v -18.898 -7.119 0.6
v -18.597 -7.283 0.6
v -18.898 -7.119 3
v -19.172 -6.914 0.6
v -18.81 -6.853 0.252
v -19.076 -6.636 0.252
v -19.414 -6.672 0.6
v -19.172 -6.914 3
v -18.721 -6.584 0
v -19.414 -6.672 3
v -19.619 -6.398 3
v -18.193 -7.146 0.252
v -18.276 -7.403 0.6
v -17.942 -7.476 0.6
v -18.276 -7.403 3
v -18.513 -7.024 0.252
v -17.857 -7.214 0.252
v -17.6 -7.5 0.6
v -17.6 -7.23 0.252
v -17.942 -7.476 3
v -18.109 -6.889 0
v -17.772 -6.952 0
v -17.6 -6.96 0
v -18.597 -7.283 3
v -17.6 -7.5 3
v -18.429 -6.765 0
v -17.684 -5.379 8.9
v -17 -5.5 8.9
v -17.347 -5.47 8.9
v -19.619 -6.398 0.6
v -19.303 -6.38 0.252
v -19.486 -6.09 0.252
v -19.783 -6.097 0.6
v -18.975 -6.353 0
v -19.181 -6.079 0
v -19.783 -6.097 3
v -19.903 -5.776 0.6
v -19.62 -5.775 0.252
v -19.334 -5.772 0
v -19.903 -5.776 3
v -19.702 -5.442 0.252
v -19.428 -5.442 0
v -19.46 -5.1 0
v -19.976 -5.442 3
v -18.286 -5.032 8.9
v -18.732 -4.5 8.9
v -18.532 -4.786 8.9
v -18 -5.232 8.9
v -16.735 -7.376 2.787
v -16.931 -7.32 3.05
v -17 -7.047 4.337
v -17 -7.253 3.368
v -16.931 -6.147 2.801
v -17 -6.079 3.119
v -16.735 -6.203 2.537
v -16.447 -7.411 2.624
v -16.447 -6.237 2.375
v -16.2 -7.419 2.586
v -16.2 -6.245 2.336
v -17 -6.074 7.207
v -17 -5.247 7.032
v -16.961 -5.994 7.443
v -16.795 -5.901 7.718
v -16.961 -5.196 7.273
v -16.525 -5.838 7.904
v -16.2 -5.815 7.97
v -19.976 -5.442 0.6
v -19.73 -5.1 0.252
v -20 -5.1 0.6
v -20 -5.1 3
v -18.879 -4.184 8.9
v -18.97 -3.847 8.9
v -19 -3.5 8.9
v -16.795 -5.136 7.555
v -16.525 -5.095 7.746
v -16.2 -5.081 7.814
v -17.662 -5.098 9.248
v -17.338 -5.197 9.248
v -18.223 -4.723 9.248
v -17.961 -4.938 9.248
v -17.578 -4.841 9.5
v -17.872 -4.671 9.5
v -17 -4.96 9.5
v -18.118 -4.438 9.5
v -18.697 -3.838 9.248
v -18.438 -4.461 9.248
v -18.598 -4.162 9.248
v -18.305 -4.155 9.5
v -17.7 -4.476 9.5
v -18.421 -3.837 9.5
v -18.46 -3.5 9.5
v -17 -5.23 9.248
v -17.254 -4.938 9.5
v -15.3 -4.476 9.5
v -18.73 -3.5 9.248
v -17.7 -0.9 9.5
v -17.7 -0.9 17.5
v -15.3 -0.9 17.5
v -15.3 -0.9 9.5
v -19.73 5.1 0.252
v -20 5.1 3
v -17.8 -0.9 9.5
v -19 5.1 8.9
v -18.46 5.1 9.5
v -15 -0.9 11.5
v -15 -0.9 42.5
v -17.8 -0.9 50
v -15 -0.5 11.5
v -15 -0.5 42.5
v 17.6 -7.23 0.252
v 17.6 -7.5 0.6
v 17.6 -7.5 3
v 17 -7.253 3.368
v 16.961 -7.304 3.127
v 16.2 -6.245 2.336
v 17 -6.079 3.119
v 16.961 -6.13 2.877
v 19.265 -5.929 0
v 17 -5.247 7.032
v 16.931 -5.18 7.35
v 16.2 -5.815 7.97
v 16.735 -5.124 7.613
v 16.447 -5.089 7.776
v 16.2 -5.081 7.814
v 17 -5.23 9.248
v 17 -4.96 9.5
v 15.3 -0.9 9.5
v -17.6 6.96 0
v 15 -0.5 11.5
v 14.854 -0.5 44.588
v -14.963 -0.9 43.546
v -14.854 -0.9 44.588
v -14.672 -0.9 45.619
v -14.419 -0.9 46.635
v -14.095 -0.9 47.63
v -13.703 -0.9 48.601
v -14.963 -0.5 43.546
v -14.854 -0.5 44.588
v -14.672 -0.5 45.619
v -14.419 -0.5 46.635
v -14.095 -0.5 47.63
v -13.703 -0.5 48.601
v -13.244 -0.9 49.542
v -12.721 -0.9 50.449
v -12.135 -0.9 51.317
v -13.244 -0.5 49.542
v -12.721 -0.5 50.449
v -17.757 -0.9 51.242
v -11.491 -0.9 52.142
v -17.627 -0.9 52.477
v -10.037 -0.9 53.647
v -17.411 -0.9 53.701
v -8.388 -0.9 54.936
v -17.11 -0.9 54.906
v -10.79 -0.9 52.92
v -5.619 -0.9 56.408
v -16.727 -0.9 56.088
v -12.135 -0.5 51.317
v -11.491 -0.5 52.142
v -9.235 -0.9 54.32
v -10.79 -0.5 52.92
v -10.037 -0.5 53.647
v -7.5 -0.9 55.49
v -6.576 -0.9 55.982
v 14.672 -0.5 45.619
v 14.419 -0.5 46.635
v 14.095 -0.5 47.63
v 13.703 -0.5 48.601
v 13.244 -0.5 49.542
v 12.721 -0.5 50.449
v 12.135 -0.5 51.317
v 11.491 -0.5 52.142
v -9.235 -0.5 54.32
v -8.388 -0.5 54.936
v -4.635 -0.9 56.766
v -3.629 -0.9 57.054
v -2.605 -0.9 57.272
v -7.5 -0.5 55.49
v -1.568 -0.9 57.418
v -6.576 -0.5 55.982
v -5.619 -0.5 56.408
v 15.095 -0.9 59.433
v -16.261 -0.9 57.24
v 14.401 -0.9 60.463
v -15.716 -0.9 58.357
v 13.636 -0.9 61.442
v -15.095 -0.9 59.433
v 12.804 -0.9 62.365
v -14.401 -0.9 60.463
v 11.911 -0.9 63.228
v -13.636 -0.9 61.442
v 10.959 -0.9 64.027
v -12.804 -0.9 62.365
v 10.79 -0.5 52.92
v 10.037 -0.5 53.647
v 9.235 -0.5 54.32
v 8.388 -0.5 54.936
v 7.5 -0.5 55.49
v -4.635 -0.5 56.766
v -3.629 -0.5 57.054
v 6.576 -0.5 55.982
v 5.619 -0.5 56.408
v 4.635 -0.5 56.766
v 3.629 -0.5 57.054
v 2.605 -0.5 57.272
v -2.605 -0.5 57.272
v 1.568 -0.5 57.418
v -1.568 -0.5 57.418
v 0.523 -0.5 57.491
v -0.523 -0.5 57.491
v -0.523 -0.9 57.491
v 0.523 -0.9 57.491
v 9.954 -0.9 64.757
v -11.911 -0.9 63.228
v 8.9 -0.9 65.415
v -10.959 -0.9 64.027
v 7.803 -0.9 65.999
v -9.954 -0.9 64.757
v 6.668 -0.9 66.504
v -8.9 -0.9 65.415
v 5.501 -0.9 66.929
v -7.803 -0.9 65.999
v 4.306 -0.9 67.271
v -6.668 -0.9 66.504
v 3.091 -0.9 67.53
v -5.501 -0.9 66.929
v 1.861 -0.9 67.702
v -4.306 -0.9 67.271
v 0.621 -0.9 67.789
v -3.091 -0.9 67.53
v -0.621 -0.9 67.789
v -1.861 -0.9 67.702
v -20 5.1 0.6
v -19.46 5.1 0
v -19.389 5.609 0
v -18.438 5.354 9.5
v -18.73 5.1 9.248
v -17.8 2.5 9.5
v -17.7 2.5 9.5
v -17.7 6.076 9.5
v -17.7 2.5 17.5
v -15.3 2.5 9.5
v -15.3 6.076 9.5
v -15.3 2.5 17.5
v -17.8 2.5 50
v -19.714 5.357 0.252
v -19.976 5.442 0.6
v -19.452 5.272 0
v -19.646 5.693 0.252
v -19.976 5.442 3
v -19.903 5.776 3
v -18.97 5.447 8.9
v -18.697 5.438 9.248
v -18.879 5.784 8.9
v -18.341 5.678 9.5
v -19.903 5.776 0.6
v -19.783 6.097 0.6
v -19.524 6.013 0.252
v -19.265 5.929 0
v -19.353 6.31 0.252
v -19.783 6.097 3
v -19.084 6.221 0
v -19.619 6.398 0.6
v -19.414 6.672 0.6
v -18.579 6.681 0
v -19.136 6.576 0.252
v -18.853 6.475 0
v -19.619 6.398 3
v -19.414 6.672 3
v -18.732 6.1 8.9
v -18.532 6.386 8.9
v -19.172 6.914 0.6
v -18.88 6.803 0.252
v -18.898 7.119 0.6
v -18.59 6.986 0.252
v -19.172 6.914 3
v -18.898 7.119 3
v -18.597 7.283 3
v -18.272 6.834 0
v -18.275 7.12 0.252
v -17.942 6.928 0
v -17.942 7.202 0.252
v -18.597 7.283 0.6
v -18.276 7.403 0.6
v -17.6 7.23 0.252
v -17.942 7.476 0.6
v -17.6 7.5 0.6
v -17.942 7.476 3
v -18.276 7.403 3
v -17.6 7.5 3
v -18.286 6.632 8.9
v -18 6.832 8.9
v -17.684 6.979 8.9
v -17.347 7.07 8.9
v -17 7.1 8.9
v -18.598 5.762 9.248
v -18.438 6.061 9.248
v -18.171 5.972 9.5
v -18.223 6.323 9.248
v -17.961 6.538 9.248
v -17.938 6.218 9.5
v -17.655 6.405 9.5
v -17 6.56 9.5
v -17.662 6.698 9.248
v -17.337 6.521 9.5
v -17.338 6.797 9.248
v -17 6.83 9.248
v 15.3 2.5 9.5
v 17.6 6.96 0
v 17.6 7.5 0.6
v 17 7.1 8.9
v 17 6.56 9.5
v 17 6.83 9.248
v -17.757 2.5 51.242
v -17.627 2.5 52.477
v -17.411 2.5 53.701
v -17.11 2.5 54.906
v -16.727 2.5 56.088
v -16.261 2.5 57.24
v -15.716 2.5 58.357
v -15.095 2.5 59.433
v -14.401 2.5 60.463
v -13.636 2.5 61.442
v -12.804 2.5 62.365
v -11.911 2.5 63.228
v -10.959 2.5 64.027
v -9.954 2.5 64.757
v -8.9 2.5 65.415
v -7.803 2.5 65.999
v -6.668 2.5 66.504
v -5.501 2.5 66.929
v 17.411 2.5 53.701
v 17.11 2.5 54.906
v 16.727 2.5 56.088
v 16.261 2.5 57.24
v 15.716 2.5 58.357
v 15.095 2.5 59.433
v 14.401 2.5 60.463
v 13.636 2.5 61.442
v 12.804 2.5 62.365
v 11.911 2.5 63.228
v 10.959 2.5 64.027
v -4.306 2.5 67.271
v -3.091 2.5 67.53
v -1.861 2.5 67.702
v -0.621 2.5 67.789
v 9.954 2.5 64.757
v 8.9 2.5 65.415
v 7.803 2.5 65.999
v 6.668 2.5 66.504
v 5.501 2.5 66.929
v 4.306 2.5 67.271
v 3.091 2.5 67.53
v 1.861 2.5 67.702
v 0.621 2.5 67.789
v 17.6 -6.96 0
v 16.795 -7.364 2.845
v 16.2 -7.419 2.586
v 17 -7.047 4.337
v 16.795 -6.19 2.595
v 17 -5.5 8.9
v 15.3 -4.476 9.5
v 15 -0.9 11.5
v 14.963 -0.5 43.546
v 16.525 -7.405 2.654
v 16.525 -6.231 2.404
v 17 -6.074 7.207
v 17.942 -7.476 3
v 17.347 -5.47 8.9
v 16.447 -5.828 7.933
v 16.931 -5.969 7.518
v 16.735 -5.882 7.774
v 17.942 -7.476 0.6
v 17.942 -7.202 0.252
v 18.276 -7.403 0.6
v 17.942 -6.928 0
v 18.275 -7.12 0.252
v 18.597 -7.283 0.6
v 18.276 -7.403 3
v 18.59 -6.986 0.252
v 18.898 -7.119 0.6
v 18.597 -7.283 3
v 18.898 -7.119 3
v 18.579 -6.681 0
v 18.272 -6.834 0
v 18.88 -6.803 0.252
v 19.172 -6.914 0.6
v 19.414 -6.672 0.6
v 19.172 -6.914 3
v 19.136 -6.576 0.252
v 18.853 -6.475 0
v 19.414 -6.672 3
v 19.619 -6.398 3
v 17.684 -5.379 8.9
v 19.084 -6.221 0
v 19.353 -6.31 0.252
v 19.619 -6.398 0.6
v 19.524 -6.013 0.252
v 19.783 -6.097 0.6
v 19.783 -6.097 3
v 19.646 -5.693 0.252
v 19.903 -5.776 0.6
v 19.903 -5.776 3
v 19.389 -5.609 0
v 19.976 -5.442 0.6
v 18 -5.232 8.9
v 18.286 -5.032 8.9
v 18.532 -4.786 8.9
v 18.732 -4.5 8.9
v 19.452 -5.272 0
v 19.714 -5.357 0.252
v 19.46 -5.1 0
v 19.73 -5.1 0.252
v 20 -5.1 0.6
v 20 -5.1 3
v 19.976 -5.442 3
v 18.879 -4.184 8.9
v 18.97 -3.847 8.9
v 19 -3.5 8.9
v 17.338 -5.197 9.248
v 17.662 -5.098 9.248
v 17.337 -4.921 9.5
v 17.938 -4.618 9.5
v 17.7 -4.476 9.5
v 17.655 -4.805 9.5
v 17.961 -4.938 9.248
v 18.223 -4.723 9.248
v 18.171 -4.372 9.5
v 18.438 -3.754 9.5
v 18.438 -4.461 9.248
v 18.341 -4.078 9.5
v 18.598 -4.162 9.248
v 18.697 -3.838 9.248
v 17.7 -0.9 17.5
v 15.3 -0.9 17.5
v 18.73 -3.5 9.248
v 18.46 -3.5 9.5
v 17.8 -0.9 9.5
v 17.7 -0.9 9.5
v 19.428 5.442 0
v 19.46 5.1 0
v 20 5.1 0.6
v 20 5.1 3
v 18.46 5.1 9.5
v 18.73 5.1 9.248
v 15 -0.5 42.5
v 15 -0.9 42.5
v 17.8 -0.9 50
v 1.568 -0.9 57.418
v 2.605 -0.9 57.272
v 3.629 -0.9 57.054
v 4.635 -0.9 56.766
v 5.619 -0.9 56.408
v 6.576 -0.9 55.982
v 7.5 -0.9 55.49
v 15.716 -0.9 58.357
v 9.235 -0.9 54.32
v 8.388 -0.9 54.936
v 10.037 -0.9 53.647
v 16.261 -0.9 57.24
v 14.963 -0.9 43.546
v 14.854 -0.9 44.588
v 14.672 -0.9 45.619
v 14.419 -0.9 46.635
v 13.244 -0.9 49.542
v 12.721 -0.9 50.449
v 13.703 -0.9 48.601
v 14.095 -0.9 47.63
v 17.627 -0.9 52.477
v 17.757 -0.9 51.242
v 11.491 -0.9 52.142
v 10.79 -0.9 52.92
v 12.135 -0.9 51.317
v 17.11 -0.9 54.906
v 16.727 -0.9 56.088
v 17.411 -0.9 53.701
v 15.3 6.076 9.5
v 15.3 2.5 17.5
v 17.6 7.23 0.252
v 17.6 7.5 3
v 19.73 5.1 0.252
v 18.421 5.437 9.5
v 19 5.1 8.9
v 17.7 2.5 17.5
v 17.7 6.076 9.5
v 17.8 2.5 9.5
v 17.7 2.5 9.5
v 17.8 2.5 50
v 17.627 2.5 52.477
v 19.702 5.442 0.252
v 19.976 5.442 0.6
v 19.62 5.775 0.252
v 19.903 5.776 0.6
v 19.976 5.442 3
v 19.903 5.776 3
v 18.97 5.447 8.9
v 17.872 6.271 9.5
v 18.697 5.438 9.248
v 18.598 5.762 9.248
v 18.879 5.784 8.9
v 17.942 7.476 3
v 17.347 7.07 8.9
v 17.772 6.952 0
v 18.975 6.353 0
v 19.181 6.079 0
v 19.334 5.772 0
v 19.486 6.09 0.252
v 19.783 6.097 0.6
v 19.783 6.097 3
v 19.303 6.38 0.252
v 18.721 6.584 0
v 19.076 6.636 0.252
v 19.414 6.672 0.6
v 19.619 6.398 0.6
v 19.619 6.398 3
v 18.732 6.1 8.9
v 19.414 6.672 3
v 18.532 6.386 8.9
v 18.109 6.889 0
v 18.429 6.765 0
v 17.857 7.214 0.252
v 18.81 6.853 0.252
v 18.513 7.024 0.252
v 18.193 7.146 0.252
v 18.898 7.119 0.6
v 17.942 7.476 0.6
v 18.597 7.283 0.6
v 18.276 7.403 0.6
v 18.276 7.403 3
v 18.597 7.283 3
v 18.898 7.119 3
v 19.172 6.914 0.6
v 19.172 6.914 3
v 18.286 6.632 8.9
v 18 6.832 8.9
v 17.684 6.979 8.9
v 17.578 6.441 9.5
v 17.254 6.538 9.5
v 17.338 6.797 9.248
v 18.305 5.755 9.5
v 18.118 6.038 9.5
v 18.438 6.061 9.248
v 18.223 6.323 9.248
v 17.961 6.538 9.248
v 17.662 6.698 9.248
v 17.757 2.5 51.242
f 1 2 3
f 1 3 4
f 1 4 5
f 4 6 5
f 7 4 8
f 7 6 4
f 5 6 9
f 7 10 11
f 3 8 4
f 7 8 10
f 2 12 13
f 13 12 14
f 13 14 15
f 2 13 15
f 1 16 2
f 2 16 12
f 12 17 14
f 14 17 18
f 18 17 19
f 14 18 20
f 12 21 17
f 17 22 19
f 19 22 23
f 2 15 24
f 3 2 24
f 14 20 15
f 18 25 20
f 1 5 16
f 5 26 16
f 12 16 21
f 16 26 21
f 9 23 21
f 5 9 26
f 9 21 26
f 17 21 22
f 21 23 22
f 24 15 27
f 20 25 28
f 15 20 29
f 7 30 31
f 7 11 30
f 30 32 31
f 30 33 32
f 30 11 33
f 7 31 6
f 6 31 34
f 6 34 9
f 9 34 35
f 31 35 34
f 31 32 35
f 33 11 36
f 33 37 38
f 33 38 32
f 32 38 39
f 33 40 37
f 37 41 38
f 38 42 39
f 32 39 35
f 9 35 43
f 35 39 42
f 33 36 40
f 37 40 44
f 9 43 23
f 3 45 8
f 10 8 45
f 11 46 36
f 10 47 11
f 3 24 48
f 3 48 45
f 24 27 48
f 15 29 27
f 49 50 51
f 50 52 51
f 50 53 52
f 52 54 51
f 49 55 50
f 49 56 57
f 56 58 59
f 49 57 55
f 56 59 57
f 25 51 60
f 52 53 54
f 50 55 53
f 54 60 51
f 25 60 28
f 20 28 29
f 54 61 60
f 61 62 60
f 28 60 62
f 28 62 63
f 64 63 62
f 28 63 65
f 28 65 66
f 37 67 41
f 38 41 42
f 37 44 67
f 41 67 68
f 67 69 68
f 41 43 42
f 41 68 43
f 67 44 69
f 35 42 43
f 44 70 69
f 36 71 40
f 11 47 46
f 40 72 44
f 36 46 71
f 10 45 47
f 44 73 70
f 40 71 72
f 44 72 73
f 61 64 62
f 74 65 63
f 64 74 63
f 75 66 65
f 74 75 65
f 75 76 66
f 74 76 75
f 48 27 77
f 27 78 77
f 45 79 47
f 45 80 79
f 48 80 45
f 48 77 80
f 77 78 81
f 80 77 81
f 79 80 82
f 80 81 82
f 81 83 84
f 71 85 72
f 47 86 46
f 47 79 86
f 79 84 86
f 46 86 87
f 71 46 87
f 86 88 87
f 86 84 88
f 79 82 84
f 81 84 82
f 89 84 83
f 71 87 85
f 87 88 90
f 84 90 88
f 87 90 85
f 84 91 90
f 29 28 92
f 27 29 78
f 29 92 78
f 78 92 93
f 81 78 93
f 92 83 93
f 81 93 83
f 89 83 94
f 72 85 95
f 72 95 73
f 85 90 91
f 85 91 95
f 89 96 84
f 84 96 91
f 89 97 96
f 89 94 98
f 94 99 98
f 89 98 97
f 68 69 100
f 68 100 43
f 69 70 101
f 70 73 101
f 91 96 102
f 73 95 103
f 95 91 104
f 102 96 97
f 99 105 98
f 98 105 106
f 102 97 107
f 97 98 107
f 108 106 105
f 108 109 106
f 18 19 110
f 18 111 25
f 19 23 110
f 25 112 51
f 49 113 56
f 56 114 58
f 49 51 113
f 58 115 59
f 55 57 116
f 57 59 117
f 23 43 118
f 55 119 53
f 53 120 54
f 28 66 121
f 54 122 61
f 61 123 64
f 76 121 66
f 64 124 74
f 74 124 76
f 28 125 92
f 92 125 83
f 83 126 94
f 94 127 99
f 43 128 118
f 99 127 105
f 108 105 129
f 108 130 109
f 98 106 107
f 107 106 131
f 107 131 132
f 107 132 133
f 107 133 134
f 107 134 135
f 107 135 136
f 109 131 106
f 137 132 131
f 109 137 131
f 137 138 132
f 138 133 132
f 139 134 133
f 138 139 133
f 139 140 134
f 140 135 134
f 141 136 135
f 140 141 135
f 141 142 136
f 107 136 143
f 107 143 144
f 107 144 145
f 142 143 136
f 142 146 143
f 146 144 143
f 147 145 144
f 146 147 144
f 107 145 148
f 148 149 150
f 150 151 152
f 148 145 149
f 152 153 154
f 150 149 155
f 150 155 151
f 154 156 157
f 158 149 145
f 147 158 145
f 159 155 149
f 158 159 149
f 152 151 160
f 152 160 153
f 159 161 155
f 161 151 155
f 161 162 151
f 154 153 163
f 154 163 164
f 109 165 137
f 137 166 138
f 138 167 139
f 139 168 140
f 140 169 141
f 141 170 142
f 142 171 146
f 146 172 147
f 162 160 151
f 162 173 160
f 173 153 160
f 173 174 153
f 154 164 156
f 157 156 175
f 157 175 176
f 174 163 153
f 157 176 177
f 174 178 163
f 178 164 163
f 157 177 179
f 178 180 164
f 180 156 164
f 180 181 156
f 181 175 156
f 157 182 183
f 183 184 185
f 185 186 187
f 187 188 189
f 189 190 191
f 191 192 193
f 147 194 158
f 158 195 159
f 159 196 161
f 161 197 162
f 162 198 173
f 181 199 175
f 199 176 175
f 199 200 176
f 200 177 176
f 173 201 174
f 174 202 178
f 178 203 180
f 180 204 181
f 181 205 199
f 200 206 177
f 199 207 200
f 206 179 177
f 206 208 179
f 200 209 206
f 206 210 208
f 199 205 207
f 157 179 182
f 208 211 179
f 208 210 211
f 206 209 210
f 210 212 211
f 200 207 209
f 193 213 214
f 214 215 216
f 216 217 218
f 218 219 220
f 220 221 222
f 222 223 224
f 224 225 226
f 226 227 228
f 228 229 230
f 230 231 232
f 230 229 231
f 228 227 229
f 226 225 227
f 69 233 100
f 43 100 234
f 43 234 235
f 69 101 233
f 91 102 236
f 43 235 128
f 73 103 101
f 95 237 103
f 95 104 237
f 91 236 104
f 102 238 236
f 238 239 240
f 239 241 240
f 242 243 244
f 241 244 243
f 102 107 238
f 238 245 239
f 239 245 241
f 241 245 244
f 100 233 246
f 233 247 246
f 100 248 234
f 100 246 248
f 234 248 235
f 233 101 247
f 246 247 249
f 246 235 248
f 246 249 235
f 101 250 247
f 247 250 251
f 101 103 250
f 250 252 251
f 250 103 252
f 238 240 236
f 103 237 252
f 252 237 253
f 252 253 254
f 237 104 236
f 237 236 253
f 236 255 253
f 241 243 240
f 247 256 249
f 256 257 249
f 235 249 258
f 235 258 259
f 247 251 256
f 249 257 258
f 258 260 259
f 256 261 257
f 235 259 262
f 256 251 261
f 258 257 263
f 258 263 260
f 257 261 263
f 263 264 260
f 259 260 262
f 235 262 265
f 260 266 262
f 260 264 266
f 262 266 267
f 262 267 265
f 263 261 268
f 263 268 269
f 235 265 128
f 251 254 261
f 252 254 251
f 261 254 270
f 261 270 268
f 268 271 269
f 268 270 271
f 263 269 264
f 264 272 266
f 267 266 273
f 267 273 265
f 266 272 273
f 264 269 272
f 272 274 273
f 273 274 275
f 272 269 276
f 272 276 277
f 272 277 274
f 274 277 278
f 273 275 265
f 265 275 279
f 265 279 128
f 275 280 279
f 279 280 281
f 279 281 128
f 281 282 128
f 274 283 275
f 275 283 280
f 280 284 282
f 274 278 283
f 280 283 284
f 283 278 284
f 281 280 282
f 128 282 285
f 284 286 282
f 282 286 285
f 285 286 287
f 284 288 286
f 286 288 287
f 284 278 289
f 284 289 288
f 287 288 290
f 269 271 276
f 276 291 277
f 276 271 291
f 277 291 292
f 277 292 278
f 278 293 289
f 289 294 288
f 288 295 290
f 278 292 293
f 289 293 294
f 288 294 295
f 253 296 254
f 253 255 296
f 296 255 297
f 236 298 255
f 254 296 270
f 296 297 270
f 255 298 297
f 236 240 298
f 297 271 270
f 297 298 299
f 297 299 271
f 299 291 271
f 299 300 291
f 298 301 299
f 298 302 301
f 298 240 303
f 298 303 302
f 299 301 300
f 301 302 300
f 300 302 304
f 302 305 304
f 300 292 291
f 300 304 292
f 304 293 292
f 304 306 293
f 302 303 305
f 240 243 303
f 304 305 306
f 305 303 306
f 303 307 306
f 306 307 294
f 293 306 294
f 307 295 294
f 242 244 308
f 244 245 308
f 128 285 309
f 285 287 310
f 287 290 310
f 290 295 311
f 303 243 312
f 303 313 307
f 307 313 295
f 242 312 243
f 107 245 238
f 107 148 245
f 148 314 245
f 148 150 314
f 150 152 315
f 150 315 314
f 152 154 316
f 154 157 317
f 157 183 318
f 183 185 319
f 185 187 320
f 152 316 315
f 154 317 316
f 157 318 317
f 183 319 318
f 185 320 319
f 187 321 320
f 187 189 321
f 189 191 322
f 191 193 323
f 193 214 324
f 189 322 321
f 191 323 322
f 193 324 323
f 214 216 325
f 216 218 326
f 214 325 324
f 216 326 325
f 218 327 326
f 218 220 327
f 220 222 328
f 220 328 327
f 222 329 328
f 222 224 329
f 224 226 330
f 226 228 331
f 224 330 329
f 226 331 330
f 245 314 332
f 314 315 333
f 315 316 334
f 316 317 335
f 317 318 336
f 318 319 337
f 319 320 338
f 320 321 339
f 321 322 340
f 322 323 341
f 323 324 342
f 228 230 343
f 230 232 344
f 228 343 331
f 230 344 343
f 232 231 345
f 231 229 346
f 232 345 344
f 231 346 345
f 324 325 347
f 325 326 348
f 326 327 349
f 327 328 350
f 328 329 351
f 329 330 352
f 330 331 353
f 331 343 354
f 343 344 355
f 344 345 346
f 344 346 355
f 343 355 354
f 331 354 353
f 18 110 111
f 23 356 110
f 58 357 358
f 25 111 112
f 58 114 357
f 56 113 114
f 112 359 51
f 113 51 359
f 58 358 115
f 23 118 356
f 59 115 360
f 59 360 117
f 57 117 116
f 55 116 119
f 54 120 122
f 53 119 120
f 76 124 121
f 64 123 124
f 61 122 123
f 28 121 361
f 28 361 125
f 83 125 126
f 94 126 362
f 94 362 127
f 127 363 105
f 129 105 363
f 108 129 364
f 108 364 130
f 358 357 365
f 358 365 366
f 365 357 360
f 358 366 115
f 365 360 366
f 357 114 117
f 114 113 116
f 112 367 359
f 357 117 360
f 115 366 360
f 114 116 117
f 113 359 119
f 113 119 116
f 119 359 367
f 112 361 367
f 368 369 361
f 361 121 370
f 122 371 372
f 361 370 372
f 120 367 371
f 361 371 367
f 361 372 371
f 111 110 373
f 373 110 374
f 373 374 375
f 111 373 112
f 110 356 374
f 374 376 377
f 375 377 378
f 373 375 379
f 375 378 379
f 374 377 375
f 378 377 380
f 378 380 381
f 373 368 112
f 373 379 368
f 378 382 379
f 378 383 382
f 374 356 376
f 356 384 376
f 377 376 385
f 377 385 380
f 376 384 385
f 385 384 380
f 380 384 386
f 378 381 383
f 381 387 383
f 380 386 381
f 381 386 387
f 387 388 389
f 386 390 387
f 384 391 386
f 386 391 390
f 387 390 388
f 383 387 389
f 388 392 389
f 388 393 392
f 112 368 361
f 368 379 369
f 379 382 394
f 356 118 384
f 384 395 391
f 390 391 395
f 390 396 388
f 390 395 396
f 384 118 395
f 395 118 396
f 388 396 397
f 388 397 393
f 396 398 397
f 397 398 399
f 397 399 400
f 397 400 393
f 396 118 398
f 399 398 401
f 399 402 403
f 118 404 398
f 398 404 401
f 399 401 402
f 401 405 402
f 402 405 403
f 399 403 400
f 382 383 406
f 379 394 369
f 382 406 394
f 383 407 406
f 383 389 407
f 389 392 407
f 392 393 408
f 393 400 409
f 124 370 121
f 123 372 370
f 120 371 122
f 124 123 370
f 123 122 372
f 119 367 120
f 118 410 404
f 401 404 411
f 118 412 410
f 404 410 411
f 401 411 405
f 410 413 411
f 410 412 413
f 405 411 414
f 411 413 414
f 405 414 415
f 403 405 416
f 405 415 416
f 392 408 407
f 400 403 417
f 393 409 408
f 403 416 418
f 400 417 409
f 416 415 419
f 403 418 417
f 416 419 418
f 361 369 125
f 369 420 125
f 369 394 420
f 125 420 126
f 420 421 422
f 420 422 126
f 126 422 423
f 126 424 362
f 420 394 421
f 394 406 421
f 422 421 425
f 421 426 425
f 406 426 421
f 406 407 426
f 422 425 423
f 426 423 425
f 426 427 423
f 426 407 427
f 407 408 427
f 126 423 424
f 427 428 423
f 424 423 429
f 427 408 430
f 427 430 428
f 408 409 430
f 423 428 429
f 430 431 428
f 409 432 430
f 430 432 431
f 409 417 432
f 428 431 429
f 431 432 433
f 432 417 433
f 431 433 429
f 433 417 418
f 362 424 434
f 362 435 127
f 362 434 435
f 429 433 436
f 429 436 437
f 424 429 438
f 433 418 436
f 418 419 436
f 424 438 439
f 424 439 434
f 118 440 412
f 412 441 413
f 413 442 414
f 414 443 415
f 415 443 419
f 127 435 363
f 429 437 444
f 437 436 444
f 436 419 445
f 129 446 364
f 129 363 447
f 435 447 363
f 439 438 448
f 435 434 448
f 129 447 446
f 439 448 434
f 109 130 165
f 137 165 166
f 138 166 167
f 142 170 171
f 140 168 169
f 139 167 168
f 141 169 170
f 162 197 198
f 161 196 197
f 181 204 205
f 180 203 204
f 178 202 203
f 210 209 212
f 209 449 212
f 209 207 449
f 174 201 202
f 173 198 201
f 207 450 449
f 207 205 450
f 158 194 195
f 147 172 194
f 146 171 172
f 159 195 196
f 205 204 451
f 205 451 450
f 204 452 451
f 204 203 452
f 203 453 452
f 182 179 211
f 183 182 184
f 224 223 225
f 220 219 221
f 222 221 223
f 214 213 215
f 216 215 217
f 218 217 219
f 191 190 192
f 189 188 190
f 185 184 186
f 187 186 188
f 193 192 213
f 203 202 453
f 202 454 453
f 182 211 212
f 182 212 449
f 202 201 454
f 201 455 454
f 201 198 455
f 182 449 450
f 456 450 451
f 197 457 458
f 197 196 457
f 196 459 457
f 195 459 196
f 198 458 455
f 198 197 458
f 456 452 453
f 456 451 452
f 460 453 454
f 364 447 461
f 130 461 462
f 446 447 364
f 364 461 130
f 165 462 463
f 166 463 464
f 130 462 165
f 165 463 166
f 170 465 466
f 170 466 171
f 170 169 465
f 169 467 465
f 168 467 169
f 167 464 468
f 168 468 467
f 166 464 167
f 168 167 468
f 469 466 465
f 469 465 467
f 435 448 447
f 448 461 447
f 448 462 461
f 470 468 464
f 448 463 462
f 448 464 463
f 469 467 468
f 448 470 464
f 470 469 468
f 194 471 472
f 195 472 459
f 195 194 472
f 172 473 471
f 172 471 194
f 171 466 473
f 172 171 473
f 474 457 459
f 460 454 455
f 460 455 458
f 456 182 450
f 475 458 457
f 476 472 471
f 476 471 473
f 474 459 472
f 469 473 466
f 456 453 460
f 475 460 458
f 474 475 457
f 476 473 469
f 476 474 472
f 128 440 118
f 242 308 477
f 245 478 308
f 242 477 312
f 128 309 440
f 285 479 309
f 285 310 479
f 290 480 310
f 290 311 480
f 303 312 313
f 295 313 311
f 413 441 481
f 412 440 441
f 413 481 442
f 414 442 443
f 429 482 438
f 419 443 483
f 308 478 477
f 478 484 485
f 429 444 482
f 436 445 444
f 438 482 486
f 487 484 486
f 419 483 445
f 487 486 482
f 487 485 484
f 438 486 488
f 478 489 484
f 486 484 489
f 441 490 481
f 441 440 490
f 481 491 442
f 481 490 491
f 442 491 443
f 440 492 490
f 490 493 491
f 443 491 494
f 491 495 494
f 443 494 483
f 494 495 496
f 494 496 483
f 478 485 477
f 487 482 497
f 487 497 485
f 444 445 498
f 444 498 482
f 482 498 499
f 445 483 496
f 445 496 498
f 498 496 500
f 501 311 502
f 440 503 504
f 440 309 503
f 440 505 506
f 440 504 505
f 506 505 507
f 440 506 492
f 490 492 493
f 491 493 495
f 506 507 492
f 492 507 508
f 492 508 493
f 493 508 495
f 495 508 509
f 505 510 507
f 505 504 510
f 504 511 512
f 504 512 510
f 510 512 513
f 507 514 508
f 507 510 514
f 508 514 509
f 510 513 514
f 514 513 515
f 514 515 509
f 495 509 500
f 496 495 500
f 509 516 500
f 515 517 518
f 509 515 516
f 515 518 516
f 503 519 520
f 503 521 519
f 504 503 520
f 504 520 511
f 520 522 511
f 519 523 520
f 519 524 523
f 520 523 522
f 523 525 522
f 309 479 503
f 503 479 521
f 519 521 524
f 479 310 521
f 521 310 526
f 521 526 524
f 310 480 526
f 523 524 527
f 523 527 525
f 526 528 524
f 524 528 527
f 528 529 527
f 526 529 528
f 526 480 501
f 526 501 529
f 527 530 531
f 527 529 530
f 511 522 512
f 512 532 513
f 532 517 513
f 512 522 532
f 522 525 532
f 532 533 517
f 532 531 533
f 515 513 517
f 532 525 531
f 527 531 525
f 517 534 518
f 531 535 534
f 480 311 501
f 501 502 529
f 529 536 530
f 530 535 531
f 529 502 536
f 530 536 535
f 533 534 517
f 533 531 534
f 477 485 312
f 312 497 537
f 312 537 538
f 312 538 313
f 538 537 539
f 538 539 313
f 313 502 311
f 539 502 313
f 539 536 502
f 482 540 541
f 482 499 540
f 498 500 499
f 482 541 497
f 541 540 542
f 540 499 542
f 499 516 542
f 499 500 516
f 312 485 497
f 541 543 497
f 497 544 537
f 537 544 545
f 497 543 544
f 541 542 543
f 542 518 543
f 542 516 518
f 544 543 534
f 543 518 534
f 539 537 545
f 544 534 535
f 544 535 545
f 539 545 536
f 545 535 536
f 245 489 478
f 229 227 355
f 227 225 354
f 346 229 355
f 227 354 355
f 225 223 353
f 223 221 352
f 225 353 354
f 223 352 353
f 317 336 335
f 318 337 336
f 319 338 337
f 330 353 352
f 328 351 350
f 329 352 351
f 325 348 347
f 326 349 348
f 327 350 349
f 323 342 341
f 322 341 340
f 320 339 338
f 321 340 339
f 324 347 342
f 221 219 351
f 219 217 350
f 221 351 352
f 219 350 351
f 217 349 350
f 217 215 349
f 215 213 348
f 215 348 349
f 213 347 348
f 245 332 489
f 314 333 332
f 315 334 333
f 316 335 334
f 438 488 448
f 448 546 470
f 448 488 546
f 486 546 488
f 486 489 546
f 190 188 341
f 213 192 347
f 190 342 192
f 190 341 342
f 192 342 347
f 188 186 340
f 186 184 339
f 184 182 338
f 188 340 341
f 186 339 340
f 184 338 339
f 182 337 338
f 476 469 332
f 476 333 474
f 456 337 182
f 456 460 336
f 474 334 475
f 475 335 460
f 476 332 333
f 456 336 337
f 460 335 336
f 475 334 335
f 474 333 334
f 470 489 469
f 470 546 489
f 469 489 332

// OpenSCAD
// Hauntology Tabletop Print Kit — Suspect Standee (Gothic Arch Tabletop Pawn)
// Colour: Ink (#0b0d10, matte black)
// Size: 40 W x 15 D mm base, 70 mm tall, 3.2 mm blade thickness
// Sticker details: Front portrait sticker pocket (30 x 46 mm arch) + plinth nameplate strip (34 x 7 mm)
// Print orientation: Flat on base (Z = 0), zero supports.

include <_common.scad>

standee_w      = 40.0;
standee_d      = 15.0;
standee_h      = 70.0;
blade_t        = 3.4;
plinth_h       = 9.5;

module gothic_arch_2d(w, h) {
  r_arch = w / 2;
  rect_h = max(1, h - r_arch);
  union() {
    translate([0, rect_h / 2])
      square([w, rect_h], center = true);
    translate([0, rect_h])
      hull() {
        circle(r = r_arch);
        translate([0, r_arch * 0.22]) circle(r = 1.6);
      }
  }
}

module standee_blank() {
  difference() {
    union() {
      // 1. Stepped Tabletop Plinth Base (40 x 15 x 9.5 mm) with angled front nameplate face
      hull() {
        chamfer_box(standee_w, standee_d, 3.2, r = 2.4, ch_bot = 0.6, ch_top = 0.2);
        translate([0, 0.8, 3.2])
          chamfer_box(standee_w - 2.0, standee_d - 2.4, plinth_h - 3.2, r = 2.0, ch_bot = 0.2, ch_top = 0.6);
      }

      // 2. Gothic-Arched Portrait Blade (z = 6.0..70.0, 3.4 mm thick)
      translate([0, 0.8, 6.0])
        rotate([90, 0, 0])
          linear_extrude(height = blade_t, center = true)
            gothic_arch_2d(35.6, standee_h - 8.2);

      // 3. Decorative side buttress fillets uniting plinth and blade
      for (sx = [-1, 1]) {
        hull() {
          translate([sx * 16.5, 0.8, plinth_h - 1.0])
            cube([2.4, standee_d - 4.0, 1.0], center = true);
          translate([sx * 16.5, 0.8, plinth_h + 7.5])
            cube([2.4, blade_t, 1.0], center = true);
        }
      }
    }

    // 4. Recessed 0.4 mm Portrait Sticker Pocket on Front of Blade (30 x 46 mm gothic arch)
    translate([0, 0.8 - blade_t / 2 + sticker_depth, 11.5])
      rotate([90, 0, 0])
        linear_extrude(height = sticker_depth + 0.5)
          gothic_arch_2d(30.0, 46.0);

    // 5. Recessed 0.4 mm Name Strip Sticker Pocket on Front of Plinth (34 x 6.5 mm)
    translate([0, -standee_d / 2 + 1.25, 5.2])
      rotate([78, 0, 0])
        linear_extrude(height = sticker_depth + 0.8, center = true)
          rrect2d(34.0, 5.6, r = 0.8);
  }
}

color(col_ink) standee_blank();
